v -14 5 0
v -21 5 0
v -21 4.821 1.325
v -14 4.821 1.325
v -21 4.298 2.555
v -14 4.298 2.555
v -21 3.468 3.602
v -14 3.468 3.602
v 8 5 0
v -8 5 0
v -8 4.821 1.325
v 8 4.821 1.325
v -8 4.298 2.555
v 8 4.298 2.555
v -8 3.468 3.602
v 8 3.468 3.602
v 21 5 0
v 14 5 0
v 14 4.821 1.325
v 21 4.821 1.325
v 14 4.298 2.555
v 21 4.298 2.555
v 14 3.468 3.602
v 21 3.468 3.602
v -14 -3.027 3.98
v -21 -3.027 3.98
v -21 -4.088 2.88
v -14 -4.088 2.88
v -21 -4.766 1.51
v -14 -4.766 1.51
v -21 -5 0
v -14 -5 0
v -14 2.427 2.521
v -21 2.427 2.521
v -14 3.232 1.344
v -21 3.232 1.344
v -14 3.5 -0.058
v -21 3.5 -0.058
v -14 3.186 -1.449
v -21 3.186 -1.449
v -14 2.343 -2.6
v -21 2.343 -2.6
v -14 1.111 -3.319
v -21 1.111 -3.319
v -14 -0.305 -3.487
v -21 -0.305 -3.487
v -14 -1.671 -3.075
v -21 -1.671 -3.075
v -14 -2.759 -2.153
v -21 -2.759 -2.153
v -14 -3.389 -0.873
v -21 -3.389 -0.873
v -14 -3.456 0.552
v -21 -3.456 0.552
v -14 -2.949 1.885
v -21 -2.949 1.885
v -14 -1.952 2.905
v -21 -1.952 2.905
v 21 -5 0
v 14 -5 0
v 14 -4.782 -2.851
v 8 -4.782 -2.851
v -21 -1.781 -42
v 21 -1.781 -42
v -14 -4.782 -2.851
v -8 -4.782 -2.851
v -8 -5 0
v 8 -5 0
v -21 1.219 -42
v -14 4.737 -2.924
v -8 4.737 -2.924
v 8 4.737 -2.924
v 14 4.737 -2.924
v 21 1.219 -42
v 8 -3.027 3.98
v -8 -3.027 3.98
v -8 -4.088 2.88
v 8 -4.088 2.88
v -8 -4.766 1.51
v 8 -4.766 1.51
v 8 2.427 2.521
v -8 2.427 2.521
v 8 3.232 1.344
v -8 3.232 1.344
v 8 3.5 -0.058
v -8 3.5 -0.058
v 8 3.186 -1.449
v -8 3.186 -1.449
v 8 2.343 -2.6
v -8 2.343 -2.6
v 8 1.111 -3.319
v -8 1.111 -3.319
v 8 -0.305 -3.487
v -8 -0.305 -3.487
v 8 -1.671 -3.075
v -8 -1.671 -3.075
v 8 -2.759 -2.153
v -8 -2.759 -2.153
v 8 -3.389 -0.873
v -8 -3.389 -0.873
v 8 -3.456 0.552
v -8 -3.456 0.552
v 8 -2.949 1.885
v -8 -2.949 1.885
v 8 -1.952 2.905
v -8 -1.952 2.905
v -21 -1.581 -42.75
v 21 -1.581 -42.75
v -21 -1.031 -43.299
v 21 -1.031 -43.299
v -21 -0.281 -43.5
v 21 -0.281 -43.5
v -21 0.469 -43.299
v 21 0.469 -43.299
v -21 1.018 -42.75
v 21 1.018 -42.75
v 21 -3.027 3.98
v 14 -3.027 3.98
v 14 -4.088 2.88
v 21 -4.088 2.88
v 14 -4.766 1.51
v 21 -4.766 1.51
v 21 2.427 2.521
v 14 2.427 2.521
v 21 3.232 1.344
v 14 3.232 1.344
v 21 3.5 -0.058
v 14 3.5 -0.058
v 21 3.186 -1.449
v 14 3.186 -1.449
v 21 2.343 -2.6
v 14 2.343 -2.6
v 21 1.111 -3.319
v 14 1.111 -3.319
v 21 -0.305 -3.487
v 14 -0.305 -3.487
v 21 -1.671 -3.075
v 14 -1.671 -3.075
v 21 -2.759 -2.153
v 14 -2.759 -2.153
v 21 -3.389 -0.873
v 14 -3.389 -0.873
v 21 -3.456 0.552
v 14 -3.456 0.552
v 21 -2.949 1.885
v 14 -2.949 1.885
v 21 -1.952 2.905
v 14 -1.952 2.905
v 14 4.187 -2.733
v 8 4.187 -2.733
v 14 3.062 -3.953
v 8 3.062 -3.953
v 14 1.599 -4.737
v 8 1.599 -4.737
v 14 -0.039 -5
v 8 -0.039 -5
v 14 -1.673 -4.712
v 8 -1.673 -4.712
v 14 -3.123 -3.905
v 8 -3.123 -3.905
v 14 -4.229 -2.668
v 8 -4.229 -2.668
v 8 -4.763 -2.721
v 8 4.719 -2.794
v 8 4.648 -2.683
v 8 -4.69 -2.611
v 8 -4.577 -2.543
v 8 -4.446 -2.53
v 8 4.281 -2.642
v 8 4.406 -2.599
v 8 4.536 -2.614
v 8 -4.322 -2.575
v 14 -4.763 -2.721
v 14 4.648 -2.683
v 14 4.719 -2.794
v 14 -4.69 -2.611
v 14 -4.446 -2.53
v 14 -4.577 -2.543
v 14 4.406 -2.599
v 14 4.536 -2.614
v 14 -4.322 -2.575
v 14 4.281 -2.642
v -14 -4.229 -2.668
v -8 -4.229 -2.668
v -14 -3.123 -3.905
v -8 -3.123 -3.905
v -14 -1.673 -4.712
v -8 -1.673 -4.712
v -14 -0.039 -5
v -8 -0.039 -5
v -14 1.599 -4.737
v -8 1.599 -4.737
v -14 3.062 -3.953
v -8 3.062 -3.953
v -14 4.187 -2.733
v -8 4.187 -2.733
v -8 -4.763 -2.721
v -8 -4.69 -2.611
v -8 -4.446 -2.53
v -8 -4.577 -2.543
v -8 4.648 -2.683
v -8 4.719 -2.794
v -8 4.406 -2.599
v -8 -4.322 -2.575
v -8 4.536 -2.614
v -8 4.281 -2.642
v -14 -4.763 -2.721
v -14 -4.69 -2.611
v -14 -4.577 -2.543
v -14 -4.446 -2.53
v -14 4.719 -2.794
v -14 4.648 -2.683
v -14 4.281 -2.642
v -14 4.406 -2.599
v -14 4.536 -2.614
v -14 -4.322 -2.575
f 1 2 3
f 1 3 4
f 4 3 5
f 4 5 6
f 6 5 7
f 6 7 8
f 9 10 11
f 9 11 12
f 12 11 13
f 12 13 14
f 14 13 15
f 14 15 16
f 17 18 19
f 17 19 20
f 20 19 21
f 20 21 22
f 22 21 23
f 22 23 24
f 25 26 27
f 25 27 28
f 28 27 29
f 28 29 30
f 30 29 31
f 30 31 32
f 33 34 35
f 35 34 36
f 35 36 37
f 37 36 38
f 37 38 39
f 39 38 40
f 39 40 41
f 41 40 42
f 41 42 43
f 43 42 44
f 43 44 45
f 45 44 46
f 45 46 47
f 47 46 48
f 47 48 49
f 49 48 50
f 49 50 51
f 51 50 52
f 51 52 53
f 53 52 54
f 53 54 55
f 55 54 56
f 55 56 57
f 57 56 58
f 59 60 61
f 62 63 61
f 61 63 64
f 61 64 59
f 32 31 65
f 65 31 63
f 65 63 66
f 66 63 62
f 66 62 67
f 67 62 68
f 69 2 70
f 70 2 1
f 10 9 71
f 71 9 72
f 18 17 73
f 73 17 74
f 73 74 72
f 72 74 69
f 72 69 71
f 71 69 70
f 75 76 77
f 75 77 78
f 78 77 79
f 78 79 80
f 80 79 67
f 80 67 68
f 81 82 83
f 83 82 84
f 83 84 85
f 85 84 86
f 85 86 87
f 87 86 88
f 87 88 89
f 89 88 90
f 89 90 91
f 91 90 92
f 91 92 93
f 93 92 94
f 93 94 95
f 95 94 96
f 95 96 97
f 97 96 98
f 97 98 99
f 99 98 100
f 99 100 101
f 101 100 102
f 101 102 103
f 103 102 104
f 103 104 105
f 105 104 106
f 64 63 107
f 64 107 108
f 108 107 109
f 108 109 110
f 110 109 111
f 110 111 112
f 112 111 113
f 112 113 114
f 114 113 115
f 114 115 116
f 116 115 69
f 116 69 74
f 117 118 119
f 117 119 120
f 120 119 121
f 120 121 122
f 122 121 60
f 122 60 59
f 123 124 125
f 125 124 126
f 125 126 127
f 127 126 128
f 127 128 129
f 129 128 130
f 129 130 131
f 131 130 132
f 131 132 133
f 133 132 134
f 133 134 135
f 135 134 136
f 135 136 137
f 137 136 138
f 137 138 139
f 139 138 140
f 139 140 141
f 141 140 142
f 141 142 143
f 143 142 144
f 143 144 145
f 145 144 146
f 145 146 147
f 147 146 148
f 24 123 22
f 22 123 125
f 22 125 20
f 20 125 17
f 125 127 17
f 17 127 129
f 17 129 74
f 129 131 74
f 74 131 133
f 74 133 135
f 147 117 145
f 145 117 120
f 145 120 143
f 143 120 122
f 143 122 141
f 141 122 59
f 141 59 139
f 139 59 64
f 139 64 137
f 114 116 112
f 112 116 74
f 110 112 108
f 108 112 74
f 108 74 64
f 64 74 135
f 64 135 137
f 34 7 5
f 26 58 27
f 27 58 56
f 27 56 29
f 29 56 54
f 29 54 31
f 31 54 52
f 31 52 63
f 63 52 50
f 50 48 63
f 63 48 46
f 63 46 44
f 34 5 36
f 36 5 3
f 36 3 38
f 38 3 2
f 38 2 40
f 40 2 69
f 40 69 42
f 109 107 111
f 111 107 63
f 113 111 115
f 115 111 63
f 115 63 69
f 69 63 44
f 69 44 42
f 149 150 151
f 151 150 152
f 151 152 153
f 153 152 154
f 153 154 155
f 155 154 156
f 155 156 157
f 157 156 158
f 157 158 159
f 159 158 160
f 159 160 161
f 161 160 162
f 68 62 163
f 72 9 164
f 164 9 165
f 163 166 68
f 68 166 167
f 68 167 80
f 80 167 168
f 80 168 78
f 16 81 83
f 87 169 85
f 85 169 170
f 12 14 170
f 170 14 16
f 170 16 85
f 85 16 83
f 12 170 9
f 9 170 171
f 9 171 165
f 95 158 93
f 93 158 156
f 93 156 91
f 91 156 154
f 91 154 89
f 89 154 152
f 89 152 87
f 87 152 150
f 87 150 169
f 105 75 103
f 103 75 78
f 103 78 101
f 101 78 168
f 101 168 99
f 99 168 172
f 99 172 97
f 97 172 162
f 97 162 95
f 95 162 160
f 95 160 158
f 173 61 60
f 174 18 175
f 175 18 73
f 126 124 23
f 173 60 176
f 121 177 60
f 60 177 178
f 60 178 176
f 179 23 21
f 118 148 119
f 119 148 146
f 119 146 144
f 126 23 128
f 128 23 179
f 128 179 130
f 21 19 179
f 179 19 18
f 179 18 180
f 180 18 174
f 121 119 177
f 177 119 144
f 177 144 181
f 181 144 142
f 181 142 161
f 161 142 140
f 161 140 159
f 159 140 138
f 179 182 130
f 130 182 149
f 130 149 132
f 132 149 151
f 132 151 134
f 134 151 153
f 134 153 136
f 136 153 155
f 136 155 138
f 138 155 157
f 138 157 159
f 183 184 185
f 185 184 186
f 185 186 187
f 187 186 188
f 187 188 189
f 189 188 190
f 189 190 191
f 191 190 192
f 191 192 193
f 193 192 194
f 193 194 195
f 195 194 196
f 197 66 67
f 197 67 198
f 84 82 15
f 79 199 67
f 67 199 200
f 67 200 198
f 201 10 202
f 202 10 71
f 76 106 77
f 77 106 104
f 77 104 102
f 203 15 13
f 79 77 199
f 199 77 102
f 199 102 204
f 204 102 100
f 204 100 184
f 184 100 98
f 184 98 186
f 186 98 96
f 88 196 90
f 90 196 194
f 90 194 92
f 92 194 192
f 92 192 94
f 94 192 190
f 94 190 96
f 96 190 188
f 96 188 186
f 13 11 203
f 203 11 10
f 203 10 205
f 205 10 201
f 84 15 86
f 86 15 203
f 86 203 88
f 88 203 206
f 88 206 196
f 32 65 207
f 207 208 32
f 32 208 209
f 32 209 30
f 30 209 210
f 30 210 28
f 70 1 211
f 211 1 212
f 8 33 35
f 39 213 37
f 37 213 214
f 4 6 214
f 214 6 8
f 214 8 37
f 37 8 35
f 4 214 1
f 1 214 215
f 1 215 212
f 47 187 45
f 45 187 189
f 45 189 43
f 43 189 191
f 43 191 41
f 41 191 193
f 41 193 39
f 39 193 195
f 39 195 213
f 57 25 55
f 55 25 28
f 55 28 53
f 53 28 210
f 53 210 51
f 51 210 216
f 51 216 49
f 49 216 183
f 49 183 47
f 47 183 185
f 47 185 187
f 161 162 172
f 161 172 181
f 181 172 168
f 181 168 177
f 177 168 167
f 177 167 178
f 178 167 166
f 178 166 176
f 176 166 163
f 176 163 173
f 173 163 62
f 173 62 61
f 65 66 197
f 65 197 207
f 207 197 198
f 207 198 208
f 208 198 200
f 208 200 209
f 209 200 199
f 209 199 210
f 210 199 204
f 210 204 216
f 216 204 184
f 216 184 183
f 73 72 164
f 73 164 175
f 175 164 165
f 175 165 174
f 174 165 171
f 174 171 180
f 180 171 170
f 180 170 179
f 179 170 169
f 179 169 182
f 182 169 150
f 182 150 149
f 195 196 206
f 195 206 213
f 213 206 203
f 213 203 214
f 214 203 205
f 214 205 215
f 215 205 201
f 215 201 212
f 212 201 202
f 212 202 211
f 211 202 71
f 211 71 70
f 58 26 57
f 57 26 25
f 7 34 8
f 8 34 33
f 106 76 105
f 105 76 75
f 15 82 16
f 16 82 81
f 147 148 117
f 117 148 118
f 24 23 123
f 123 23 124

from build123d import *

# Parameters (mm, degrees)
SKETCH1_R           = 3.5
SKETCH1_R_2         = 1.500000000000004
BOSS_EXTRUDE1_DEPTH = 21
CUT_EXTRUDE1_START  = 14
SKETCH1_3_R         = 3.5
CUT_EXTRUDE1_DEPTH  = 6
CUT_EXTRUDE2_START  = -8
SKETCH1_4_R         = 3.5
CUT_EXTRUDE2_DEPTH  = 6
FILLET2_R           = 0.3
CUT_EXTRUDE3_REACH  = 62.673


with BuildPart() as part:
    # Sketch1 → Boss-Extrude1 (new, symmetric)
    # profile 1 of 3: a face of its own
    with BuildSketch(Plane(origin=(0, 0, 0), x_dir=(0, 0, -1), z_dir=(1, 0, 0))):
        with BuildLine():
            ThreePointArc((42, -1.7814888188261242), (40.49999999999999, -0.2814888188261199), (42, 1.2185111811738838))
            Line((42, 1.21851118117388), (0.8931145530180302, 4.919588031043605))
            ThreePointArc((0.8931145530180298, 4.919588031043595), (3.8383311976098513, 3.204249306382842), (5, 0))
            ThreePointArc((5, -1.22e-15), (3.7953387230389426, -3.255058214133985), (0.7618384090395492, -4.9416193943394795))
            Line((0.7618384090395499, -4.9416193943394875), (42, -1.7814888188261202))
        make_face()
    # profile 2 of 3: a face of its own
    with BuildSketch(Plane(origin=(0, 0, 0), x_dir=(0, 0, -1), z_dir=(1, 0, 0))):
        with BuildLine():
            ThreePointArc((5, 0), (3.8383311976098513, 3.204249306382842), (0.8931145530180298, 4.919588031043595))
            Line((0.8931145530180302, 4.919588031043605), (0, 5))
            ThreePointArc((3.1e-16, 5), (-5, 6.1e-16), (-9.2e-16, -5))
            Line((0, -5), (0.7618384090395499, -4.9416193943394875))
            ThreePointArc((0.7618384090395492, -4.9416193943394795), (3.7953387230389426, -3.255058214133985), (5, -1.22e-15))
        make_face()
        with Locations(Location((0, 0, 0), (0, 0, 180))):
            Circle(SKETCH1_R, mode=Mode.SUBTRACT)
    # profile 3 of 3: a face of its own
    with BuildSketch(Plane(origin=(0, 0, 0), x_dir=(0, 0, -1), z_dir=(1, 0, 0))):
        with Locations((42, -0.2814888188261201)):
            Circle(SKETCH1_R_2)
    extrude(amount=BOSS_EXTRUDE1_DEPTH, both=True)

    # Sketch1<3> → Cut-Extrude1 (cut)
    with BuildSketch(Plane(origin=(0, 0, 0), x_dir=(0, 0, -1), z_dir=(1, 0, 0)).offset(CUT_EXTRUDE1_START)):
        with BuildLine():
            ThreePointArc((5, 0), (3.8383311976098513, 3.204249306382842), (0.8931145530180298, 4.919588031043595))
            Line((0.8931145530180302, 4.919588031043605), (0, 5))
            ThreePointArc((3.1e-16, 5), (-5, 6.1e-16), (-9.2e-16, -5))
            Line((0, -5), (0.7618384090395499, -4.9416193943394875))
            ThreePointArc((0.7618384090395492, -4.9416193943394795), (3.7953387230389426, -3.255058214133985), (5, -1.22e-15))
        make_face()
        with Locations(Location((0, 0, 0), (0, 0, 180))):
            Circle(SKETCH1_3_R, mode=Mode.SUBTRACT)
    extrude(amount=-CUT_EXTRUDE1_DEPTH, mode=Mode.SUBTRACT)

    # Sketch1<4> → Cut-Extrude2 (cut)
    with BuildSketch(Plane(origin=(0, 0, 0), x_dir=(0, 0, -1), z_dir=(1, 0, 0)).offset(CUT_EXTRUDE2_START)):
        with BuildLine():
            ThreePointArc((5, 0), (3.8383311976098513, 3.204249306382842), (0.8931145530180298, 4.919588031043595))
            Line((0.8931145530180302, 4.919588031043605), (0, 5))
            ThreePointArc((3.1e-16, 5), (-5, 6.1e-16), (-9.2e-16, -5))
            Line((0, -5), (0.7618384090395499, -4.9416193943394875))
            ThreePointArc((0.7618384090395492, -4.9416193943394795), (3.7953387230389426, -3.255058214133985), (5, -1.22e-15))
        make_face()
        with Locations(Location((0, 0, 0), (0, 0, 180))):
            Circle(SKETCH1_4_R, mode=Mode.SUBTRACT)
    extrude(amount=-CUT_EXTRUDE2_DEPTH, mode=Mode.SUBTRACT)

    # Fillet2
    fillet2_edges = [part.edges().sort_by_distance(p)[0] for p in [
        (11, 4.919588031043601, -0.8931145530180298),
        (11, -4.941619394339483, -0.7618384090395496),
        (-11, 4.919588031043601, -0.8931145530180298),
        (-11, -4.941619394339483, -0.7618384090395496),
    ]]
    fillet(fillet2_edges, radius=FILLET2_R)

    # Cut-Extrude3: up to this face of the body (flat: up to its plane)
    cut_extrude3_end = Plane(part.part.faces().sort_by_distance((-21, -0.117271195, -17.205258384))[0])
    # Sketch2 → Cut-Extrude3 (cut, up to the picked face)
    with BuildSketch(Plane(origin=(21, 0, 0), x_dir=(0, 0, -1), z_dir=(1, 0, 0)), mode=Mode.PRIVATE) as cut_extrude3_sk1:
        with BuildLine():
            Line((-3.6020994823407393, 3.467690776196831), (-2.5214696376385177, 2.4273835433377813))
            ThreePointArc((-2.5214696376385177, 2.4273835433377813), (-3.486645137099691, 0.30545979758239905), (-2.905137986458371, -1.9519665160131723))
            Line((-2.905137986458371, -1.9519665160131723), (-3.979850788994912, -3.026679318549717))
            ThreePointArc((-3.979850788994912, -3.026679318549717), (-4.991563203159533, 0.2903390928961196), (-3.6020994823407393, 3.467690776196831))
        make_face()
    cut_extrude3_tool1 = split(extrude(cut_extrude3_sk1.sketch, amount=-CUT_EXTRUDE3_REACH, mode=Mode.PRIVATE), bisect_by=cut_extrude3_end, keep=Keep.BOTH, mode=Mode.PRIVATE)
    add(cut_extrude3_tool1.solids().sort_by(Axis((21, 0.27388, 3.94965), (-1, 0, 0)))[0], mode=Mode.SUBTRACT)


solid = part.part
